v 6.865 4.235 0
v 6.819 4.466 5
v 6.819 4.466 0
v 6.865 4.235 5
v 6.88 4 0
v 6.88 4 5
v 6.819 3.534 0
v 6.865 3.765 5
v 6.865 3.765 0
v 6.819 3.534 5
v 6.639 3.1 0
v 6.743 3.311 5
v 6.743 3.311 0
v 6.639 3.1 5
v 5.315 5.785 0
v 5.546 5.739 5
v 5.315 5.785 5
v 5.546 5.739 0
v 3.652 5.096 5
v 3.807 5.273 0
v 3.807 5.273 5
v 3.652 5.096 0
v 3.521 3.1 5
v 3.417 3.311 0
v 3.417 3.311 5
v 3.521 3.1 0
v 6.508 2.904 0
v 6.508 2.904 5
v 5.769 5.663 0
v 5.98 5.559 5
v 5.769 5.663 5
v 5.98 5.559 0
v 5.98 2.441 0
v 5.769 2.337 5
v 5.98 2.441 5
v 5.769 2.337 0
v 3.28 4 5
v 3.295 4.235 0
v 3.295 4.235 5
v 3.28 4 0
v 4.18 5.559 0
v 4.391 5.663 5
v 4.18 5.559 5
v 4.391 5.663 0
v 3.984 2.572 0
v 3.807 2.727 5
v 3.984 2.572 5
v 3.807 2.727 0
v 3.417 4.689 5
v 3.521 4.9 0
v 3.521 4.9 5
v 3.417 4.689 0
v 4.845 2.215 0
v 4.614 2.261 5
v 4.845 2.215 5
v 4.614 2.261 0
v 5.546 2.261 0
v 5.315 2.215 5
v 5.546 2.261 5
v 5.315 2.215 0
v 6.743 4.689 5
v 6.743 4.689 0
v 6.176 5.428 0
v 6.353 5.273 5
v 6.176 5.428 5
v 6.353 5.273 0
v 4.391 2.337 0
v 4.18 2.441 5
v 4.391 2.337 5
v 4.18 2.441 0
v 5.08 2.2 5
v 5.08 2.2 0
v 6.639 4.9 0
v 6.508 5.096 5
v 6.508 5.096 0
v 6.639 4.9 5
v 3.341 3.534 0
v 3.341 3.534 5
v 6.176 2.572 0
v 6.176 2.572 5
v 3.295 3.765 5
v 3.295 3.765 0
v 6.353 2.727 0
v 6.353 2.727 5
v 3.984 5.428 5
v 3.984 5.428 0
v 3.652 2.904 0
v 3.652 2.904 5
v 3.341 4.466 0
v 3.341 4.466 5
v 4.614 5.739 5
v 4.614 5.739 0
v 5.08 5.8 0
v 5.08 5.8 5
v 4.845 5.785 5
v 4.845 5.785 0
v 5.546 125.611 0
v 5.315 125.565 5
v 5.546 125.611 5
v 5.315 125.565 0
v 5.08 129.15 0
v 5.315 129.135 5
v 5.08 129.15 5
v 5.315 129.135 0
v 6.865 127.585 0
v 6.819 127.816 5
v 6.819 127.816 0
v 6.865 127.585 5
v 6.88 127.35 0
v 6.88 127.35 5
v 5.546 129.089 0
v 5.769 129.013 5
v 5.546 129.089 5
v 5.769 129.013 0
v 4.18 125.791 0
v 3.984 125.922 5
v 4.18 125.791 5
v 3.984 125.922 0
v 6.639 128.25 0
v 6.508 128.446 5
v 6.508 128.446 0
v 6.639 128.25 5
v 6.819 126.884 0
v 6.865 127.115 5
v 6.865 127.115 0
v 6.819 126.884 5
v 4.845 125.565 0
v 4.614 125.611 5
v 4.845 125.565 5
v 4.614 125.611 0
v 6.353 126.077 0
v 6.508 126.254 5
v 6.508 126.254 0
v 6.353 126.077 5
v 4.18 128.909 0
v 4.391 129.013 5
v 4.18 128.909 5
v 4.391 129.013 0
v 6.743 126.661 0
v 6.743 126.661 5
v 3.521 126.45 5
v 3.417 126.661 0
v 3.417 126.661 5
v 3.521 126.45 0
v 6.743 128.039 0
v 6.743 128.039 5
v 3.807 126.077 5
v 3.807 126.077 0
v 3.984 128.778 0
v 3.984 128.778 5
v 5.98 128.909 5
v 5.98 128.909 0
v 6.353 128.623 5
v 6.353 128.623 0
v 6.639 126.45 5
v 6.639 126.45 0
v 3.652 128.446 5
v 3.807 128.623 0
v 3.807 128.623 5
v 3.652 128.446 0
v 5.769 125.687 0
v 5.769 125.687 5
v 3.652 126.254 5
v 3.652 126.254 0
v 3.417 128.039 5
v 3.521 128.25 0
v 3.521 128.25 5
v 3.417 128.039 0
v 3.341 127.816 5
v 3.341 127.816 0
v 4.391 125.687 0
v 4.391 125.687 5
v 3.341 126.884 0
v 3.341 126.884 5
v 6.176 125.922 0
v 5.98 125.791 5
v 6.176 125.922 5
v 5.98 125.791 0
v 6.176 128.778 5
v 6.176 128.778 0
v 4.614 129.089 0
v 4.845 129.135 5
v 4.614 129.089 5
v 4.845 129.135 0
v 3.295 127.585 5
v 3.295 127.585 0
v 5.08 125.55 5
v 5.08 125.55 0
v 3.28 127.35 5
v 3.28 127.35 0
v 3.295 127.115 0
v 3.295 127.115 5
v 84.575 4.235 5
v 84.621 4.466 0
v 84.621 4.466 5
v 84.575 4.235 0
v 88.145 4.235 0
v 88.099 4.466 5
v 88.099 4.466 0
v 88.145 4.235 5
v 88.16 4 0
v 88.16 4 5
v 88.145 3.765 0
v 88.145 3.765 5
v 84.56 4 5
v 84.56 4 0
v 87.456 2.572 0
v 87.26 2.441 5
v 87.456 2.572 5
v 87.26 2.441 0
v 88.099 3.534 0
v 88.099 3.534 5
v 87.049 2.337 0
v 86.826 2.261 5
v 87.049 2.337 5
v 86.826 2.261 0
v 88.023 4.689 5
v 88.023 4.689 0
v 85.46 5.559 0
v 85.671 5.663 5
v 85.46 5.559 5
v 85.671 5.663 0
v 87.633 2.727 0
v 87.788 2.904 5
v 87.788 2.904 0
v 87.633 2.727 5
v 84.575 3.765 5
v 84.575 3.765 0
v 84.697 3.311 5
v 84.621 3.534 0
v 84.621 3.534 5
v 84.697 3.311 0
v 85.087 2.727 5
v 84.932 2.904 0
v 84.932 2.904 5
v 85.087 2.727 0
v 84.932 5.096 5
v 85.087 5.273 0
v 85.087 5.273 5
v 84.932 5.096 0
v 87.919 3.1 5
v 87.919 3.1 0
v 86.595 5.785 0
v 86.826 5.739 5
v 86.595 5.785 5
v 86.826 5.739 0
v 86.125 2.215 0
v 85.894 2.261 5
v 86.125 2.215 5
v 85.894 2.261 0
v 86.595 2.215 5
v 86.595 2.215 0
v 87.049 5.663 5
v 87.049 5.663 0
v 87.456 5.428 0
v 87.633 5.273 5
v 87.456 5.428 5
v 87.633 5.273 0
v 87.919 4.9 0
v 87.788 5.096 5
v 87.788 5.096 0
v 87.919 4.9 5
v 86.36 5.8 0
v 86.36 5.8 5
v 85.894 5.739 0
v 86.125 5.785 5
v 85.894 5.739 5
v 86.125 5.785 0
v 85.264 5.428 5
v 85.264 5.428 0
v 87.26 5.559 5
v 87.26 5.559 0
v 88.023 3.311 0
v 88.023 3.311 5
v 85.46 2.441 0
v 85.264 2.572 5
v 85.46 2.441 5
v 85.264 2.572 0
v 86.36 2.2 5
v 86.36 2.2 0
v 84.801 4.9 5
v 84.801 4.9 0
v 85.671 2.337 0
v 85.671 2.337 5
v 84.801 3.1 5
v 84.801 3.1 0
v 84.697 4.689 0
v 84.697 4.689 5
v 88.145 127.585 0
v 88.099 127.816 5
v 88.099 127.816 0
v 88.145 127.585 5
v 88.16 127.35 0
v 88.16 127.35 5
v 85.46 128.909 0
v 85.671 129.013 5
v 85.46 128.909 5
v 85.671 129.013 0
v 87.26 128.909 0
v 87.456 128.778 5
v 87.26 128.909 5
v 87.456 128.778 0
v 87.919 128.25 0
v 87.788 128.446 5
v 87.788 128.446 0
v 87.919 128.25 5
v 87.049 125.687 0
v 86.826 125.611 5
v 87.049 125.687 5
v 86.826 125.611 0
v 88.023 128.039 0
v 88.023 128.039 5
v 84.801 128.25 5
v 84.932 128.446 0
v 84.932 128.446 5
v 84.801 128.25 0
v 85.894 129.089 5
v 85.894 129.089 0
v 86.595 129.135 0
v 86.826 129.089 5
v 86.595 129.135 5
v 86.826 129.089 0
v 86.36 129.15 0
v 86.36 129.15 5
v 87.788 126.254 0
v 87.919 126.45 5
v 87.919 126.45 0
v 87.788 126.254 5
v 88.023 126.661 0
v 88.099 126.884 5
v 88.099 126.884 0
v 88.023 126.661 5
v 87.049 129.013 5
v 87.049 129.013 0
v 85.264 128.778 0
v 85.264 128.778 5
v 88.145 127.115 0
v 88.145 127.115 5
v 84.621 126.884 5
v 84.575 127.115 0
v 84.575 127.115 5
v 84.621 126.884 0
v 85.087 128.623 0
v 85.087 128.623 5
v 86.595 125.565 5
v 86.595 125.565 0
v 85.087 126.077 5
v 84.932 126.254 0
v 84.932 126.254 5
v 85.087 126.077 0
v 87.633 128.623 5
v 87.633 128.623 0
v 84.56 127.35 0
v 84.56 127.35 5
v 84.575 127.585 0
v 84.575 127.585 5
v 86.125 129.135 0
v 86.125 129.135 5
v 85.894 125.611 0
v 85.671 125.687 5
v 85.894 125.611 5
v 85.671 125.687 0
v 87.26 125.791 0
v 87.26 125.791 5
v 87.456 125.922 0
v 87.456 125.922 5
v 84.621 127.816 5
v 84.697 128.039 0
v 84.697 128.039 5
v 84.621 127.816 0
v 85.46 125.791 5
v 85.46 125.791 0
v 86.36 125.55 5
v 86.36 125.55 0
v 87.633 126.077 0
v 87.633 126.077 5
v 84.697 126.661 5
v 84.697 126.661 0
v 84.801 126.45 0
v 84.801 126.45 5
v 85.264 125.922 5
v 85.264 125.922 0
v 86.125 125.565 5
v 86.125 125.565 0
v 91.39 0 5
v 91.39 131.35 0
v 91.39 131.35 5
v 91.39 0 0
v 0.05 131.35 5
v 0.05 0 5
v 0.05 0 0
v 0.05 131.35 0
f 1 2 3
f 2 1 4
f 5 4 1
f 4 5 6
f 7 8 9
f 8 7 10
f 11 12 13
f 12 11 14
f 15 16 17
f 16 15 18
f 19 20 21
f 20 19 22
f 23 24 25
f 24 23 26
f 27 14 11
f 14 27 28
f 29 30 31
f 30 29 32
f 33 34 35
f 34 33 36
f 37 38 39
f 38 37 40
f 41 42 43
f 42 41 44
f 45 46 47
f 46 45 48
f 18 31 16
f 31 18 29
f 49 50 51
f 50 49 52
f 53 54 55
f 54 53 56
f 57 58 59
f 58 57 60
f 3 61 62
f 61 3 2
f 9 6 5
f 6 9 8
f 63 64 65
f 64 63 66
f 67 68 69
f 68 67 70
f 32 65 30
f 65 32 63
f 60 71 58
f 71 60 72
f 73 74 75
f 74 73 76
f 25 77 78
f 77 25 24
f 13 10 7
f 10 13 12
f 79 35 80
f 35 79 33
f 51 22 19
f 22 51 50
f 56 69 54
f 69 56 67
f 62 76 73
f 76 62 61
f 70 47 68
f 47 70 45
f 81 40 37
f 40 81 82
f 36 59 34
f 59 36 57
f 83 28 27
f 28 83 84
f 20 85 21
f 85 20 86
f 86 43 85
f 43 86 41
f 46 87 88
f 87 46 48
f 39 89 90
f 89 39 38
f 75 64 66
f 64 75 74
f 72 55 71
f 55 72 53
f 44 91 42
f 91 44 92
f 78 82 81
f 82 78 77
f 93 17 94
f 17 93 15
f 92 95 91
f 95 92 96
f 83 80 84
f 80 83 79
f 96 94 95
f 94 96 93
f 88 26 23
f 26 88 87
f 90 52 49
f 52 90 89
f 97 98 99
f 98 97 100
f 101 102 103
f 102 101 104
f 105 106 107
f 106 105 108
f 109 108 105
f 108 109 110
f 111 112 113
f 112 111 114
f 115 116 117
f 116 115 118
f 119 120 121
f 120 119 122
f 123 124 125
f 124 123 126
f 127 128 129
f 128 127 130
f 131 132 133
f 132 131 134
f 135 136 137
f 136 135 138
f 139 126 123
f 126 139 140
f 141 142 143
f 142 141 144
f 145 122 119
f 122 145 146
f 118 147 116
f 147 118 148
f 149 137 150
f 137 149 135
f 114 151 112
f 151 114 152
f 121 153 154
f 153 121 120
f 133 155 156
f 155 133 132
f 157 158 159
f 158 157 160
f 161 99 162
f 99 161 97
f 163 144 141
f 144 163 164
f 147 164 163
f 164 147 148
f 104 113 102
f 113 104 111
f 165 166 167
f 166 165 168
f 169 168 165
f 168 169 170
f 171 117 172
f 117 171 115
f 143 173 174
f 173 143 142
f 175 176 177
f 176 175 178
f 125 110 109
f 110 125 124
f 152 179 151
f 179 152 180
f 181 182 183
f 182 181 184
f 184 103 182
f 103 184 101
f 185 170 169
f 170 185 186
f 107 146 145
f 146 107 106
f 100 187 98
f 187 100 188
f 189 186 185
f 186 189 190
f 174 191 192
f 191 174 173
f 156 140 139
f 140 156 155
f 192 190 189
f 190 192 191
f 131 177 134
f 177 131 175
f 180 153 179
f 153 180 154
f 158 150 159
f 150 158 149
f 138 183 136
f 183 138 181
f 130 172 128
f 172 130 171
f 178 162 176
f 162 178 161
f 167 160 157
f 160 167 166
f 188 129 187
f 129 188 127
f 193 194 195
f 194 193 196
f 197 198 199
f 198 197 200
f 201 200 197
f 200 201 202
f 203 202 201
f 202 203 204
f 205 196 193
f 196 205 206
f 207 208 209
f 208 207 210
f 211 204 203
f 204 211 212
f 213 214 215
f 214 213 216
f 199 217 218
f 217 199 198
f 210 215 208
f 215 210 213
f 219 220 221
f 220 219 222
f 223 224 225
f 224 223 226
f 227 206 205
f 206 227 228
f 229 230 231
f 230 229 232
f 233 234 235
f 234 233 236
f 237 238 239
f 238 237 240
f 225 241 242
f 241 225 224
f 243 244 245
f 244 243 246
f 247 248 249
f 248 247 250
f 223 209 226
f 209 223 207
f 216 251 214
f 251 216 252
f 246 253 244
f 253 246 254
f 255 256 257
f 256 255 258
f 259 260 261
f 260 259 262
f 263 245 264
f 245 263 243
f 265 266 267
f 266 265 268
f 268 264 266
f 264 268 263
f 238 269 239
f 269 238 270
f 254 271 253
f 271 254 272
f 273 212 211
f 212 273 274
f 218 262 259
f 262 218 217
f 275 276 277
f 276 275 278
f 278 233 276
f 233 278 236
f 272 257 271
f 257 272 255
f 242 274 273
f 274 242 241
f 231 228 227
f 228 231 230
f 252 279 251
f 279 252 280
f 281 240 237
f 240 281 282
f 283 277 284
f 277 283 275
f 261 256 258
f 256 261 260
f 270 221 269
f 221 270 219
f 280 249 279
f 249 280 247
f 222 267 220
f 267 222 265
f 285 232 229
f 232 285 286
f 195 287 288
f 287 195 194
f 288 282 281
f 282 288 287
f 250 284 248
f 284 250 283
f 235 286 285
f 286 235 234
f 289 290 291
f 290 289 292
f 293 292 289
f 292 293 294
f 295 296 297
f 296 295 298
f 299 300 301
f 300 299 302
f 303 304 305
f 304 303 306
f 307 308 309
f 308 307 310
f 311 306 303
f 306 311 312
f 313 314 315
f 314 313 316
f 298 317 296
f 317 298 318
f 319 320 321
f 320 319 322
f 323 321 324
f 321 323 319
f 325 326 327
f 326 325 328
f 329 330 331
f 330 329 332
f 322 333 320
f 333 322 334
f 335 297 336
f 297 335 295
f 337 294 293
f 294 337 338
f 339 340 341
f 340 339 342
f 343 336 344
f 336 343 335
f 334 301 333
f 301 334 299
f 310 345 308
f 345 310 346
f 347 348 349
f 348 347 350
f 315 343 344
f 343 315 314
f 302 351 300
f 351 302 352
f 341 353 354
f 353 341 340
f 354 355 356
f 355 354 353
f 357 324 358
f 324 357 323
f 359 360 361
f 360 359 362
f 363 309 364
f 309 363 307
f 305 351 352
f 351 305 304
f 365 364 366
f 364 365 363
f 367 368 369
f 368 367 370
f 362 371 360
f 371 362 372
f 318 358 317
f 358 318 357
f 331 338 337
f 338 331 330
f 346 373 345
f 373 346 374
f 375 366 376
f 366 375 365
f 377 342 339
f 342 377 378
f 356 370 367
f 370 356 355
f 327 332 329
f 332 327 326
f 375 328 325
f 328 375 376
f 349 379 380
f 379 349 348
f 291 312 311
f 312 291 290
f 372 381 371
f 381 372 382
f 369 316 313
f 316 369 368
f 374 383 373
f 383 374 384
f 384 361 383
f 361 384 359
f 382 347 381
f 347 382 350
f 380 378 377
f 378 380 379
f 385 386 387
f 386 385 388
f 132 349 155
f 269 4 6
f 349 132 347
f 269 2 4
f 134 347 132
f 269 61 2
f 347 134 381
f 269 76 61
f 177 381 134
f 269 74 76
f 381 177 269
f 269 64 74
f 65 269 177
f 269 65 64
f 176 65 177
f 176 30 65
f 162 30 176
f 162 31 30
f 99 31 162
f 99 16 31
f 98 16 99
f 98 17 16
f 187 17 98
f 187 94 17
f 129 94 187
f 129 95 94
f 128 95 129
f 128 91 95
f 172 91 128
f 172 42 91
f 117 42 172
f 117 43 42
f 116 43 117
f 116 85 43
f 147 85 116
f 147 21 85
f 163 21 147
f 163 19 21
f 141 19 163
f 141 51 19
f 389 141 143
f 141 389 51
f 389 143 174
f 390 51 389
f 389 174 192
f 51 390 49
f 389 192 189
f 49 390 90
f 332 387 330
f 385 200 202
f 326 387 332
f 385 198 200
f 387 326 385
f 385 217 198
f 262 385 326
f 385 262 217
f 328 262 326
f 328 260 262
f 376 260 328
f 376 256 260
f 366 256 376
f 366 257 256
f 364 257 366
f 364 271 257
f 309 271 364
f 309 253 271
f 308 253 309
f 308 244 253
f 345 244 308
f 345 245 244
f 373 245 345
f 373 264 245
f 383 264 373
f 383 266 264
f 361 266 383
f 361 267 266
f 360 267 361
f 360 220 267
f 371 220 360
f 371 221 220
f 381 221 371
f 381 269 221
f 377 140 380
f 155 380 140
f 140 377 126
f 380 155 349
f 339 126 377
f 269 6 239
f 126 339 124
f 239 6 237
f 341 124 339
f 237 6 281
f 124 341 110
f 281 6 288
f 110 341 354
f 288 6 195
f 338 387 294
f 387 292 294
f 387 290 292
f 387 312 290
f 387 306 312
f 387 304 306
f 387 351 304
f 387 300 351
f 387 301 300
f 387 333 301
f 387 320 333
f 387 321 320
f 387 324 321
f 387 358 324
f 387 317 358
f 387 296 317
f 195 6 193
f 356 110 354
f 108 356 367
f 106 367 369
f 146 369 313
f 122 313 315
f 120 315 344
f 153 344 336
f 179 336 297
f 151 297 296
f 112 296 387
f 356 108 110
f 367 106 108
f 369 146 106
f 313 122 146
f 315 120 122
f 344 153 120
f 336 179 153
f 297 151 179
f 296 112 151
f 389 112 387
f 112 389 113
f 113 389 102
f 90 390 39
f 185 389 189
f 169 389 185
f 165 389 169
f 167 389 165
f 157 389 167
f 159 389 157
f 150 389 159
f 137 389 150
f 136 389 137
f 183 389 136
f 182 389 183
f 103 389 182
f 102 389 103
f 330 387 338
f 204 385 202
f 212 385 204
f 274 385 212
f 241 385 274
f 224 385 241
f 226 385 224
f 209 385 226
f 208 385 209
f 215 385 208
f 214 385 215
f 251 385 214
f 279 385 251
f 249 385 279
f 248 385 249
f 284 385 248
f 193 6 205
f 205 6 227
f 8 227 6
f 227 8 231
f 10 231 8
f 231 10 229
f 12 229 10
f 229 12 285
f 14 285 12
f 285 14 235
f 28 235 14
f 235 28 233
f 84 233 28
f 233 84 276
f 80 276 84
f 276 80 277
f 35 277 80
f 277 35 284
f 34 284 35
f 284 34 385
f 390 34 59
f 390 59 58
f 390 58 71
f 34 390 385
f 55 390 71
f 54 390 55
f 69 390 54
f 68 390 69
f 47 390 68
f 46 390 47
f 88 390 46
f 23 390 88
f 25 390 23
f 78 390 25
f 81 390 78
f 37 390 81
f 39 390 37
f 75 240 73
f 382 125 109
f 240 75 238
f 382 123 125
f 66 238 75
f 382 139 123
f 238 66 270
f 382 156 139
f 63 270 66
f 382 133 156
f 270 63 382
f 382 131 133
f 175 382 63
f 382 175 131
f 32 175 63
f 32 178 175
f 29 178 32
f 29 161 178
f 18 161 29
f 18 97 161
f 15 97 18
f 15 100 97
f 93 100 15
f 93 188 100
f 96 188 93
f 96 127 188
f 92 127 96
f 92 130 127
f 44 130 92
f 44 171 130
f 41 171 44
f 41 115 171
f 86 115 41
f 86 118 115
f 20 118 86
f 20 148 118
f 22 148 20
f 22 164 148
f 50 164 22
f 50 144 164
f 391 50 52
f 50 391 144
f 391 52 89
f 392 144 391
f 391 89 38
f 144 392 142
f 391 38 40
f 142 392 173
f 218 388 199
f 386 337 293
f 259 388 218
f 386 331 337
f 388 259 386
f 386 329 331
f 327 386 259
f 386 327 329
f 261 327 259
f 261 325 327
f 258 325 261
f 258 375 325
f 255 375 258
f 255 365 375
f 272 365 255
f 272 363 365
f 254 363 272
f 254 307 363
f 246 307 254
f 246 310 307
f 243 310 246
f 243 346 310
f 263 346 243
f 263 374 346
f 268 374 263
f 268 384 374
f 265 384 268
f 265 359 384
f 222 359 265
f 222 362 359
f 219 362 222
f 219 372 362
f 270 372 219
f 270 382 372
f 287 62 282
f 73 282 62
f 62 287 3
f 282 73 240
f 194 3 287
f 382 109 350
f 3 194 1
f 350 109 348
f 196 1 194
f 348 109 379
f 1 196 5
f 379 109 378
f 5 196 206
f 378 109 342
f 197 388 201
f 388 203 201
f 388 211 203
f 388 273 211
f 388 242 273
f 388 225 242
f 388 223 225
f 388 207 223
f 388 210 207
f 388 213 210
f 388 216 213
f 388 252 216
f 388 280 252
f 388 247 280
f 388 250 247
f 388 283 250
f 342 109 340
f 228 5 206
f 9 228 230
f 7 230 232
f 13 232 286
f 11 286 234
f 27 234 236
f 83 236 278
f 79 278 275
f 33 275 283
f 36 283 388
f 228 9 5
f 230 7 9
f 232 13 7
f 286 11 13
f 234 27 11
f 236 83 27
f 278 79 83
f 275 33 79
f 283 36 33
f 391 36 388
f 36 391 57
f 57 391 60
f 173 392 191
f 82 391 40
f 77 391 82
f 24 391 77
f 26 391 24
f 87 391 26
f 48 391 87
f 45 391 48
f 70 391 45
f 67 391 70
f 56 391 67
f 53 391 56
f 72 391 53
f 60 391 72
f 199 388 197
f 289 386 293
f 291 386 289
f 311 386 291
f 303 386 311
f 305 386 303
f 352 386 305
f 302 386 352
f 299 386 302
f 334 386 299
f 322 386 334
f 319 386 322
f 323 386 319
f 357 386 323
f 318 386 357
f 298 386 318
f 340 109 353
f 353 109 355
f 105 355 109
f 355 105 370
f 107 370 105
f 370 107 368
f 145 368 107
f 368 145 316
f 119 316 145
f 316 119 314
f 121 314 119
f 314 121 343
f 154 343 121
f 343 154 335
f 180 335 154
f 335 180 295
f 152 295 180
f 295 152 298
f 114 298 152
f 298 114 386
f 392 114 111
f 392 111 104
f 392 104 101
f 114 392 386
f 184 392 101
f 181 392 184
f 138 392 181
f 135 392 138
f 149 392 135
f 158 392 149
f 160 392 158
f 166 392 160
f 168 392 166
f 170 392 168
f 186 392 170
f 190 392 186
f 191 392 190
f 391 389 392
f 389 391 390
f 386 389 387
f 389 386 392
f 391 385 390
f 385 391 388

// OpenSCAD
HE=44.45;
TE=5.08;

WIDTH= 18  * TE;
HEIGHT=3*HE-2;
THICKNESS=5;
EURORACK_HEIGHT=128.5;
PLUG_POSITION=[15,15,0];
COMB_MARGIN = 8;

// Mounting Hole Offset from the top / bottom edge
HOLE_OFFSET_Y = 4;
// Mounting Hole offset from the sides
HOLE_OFFSET_X = TE;
HOLE_RADIUS = 1.8;
// Number of Facets for the Holes. 
// A reasonably high number should be picked or else holes might end up to small
HOLE_FACETS = 48;

module plug_positive(){
  PLUG_HEIGHT=20.5;
  PLUG_WIDTH=27.5;
  cube([PLUG_WIDTH + 20, PLUG_HEIGHT + 20, THICKNESS]);
}
module plug_negative(){
  PLUG_HEIGHT=20.5;
  PLUG_WIDTH=27.5;
  PLUG_SCREW_DISTANCE = 40;
  PLUG_SCREWHOLE_RADIUS=1.55;
  PLUG_SCREW_OFFSET = (PLUG_SCREW_DISTANCE - PLUG_WIDTH) / 2;
  translate([10,10, -0.1])
  cube([PLUG_WIDTH, PLUG_HEIGHT, THICKNESS + 0.2]);
  translate([10 - PLUG_SCREW_OFFSET, 10 + PLUG_HEIGHT / 2, -0.1])
  cylinder(h = THICKNESS+0.2, r=PLUG_SCREWHOLE_RADIUS, center=false, $fn=HOLE_FACETS);
  translate([10 + PLUG_WIDTH + PLUG_SCREW_OFFSET, 10 + PLUG_HEIGHT / 2, -0.1])
  cylinder(h = THICKNESS+0.2, r=PLUG_SCREWHOLE_RADIUS, center=false, $fn=HOLE_FACETS);

}
 difference(){
    union(){
        translate([0.05,0,0])
        cube([WIDTH-0.1, HEIGHT, THICKNESS]);

    }
    
    // The four mounting holes
    for (x =[HOLE_OFFSET_X, WIDTH-HOLE_OFFSET_X]){
        for (y =[HOLE_OFFSET_Y, HEIGHT-HOLE_OFFSET_Y]){
            color([1,0,0])
            translate([x, y, -0.1]){
            cylinder(h = THICKNESS+0.2, r=HOLE_RADIUS, center=false, $fn=HOLE_FACETS); 
            };
        }
    };
}
